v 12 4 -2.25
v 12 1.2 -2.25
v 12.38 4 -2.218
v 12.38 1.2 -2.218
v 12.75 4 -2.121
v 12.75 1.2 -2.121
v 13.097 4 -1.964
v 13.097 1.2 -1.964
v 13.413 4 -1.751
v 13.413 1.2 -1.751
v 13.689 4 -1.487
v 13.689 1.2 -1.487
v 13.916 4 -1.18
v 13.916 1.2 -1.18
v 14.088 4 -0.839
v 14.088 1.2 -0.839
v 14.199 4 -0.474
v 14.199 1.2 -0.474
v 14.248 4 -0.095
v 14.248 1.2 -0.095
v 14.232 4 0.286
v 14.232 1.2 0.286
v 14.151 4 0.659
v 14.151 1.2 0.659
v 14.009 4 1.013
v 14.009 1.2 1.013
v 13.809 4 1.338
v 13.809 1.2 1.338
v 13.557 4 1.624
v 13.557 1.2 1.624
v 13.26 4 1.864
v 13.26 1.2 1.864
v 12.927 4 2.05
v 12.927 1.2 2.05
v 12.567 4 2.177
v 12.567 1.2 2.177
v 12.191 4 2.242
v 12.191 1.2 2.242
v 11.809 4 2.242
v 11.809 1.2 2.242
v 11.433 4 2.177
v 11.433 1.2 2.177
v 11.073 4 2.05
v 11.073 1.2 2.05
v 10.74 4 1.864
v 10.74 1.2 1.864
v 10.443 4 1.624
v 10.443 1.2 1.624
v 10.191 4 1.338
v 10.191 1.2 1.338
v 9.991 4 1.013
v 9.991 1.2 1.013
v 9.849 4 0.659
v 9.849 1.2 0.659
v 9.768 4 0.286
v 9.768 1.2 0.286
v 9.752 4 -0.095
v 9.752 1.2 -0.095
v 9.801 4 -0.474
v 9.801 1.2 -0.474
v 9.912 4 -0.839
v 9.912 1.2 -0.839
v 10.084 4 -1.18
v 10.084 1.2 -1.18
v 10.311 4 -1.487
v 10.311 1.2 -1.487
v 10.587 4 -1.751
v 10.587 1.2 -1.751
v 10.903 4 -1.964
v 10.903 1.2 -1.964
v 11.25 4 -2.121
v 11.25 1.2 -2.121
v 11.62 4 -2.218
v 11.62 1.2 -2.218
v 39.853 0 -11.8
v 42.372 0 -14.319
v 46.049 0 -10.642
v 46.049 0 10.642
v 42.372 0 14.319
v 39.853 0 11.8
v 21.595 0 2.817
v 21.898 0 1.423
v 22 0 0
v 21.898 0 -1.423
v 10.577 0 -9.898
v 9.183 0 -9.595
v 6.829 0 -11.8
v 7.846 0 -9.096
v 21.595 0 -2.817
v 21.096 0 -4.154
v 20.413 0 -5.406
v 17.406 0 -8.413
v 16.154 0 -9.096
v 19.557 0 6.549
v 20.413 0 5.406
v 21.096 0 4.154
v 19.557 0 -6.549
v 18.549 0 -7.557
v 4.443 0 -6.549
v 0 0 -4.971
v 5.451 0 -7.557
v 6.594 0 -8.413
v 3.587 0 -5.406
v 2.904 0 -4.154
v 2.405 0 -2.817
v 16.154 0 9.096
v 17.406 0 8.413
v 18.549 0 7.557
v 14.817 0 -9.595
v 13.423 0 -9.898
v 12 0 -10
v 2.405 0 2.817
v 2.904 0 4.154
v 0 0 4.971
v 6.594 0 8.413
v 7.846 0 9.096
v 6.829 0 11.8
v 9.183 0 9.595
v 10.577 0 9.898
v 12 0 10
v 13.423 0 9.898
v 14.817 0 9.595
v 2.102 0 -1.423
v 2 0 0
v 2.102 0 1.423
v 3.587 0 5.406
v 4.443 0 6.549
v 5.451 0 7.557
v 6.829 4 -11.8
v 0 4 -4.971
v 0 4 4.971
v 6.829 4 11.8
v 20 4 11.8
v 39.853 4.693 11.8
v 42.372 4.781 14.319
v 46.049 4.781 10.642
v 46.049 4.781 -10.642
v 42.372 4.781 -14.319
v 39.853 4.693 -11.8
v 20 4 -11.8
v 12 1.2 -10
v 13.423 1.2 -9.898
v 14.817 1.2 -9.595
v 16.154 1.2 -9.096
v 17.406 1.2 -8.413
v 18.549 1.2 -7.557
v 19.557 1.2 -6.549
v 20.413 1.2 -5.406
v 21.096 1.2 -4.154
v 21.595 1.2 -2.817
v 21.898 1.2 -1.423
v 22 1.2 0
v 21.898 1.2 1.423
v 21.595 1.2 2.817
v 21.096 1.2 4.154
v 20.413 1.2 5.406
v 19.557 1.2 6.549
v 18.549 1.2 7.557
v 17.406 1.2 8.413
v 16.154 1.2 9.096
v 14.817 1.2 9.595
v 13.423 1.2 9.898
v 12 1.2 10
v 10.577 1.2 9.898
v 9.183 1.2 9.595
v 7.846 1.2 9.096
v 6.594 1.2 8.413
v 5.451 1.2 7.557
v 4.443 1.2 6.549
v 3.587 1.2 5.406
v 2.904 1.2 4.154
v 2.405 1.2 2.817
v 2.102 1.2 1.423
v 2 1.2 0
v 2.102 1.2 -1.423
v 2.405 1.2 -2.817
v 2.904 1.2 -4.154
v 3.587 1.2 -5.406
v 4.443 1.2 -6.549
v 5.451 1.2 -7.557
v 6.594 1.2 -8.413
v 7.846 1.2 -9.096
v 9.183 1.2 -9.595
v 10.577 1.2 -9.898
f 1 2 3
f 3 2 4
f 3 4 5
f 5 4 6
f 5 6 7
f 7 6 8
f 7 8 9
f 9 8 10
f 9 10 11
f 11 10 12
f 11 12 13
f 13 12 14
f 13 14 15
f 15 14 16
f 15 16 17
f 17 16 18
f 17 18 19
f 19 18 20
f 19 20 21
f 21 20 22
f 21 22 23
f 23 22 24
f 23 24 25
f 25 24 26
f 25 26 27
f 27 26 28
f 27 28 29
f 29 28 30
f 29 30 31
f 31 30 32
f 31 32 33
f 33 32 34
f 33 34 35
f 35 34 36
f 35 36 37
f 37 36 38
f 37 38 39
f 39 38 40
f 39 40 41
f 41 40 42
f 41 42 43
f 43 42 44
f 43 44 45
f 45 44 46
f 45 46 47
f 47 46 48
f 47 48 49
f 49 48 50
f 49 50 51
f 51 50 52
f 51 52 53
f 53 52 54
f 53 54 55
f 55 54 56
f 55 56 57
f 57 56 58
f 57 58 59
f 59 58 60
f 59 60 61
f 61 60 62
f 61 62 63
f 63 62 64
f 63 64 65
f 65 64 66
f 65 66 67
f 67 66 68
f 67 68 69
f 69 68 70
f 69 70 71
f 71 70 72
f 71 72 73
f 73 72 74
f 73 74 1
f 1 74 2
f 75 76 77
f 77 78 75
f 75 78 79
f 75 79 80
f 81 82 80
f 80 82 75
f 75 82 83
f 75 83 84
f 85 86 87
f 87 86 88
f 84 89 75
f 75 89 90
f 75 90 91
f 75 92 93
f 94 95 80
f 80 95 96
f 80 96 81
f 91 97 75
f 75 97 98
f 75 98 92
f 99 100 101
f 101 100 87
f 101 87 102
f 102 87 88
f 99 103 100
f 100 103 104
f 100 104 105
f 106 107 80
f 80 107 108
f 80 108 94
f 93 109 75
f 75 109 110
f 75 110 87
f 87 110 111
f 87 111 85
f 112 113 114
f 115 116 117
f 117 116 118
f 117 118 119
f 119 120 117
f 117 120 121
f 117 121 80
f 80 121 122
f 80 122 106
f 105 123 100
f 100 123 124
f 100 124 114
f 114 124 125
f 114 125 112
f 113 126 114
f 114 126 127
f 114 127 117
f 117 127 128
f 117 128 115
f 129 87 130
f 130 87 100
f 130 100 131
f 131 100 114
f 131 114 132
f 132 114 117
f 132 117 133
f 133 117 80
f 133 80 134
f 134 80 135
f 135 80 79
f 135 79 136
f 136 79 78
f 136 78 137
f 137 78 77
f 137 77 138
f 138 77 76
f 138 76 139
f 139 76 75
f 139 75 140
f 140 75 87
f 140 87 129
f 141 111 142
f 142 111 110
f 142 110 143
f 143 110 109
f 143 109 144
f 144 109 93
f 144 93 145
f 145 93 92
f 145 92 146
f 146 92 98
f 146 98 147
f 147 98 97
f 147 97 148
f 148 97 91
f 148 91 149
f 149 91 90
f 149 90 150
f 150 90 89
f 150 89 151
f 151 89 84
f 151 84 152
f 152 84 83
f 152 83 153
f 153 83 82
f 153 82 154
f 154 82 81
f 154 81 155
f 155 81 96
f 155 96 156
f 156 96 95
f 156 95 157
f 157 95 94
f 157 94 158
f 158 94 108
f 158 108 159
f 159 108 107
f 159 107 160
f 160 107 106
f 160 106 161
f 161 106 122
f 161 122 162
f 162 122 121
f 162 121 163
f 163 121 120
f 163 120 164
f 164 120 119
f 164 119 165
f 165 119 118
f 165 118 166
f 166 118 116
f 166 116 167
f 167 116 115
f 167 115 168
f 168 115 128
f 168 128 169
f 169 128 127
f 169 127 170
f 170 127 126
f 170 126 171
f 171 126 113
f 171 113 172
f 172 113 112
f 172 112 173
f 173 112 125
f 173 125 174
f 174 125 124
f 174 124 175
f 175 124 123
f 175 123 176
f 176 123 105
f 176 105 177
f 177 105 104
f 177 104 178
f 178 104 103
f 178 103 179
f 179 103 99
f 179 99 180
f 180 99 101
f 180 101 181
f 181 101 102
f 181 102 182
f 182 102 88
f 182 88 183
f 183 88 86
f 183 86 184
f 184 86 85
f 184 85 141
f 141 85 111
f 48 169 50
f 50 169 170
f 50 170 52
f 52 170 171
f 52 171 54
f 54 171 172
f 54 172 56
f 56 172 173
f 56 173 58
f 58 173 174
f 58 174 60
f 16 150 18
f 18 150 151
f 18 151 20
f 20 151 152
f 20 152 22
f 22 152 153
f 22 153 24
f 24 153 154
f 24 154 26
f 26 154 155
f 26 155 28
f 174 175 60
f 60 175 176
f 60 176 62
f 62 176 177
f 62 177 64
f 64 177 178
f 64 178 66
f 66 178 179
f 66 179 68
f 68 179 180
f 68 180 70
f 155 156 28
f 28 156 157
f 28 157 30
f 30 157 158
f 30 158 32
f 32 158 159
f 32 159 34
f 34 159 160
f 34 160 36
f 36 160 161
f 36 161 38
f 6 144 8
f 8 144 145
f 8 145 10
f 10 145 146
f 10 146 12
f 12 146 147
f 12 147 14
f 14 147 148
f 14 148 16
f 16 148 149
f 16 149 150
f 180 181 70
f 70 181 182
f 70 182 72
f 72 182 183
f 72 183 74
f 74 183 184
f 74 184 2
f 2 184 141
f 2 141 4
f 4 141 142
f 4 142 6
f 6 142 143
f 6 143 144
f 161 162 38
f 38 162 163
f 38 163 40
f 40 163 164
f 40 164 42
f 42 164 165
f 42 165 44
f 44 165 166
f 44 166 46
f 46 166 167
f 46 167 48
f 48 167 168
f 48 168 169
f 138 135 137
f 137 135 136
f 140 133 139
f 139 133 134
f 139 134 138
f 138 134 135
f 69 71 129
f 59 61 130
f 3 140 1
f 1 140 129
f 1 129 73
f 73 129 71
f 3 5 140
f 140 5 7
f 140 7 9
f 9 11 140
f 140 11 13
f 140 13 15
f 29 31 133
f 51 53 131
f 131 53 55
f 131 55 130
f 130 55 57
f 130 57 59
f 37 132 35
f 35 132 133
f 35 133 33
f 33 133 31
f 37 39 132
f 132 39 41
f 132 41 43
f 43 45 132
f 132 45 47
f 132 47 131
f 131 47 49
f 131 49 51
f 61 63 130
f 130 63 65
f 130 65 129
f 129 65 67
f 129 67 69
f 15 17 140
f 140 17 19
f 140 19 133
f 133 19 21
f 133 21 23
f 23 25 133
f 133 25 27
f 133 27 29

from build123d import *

# Parameters (mm, degrees)
SKETCH1_R               = 2.25
BOSS_EXTRUDE1_DEPTH     = 6
SKETCH2_R               = 10
CUT_EXTRUDE1_DEPTH      = 1.2
CUT_EXTRUDE2_DEPTH      = 54.27936377
CUT_EXTRUDE2_DEPTH_BACK = 54.27936377


with BuildPart() as part:
    # Sketch1 → Boss-Extrude1 (new body)
    with BuildSketch(Plane(origin=(0, 0, 0), x_dir=(1, 0, 0), z_dir=(0, 1, 0))):
        Polygon((0, 4.970562748), (0, -4.970562748), (6.829437252, -11.8), (39.85294373, -11.8), (39.86294373, -11.81), (40.05294373, -12), (42.371856048, -14.318912318), (46.04881131, -10.641957056), (46.04881131, 10.641957056), (42.371856048, 14.318912318), (40.05294373, 12), (39.86294373, 11.81), (39.85294373, 11.8), (6.829437252, 11.8), align=None)
        with Locations(Location((12, 0, 0), (0, 0, 270))):
            Circle(SKETCH1_R, mode=Mode.SUBTRACT)
    extrude(amount=BOSS_EXTRUDE1_DEPTH)

    # Sketch2 → Cut-Extrude1 (cut)
    with BuildSketch(Plane.XZ):
        with Locations(Location((12, 0, 0), (0, 0, 270))):
            Circle(SKETCH2_R)
    extrude(amount=-CUT_EXTRUDE1_DEPTH, mode=Mode.SUBTRACT)

    # Sketch3 → Cut-Extrude2 (cut, two sides: drawn at the far end of the back side and taken through both)
    with BuildSketch(Plane(origin=(0, 0, -11.8), x_dir=(-1, 0, 0), z_dir=(0, 0, -1)).offset(-CUT_EXTRUDE2_DEPTH_BACK)):
        Polygon((-46.04881131, 6), (0, 6), (0, 4), (-20, 4), (-42.371856048, 4.781242428), (-46.04881131, 4.781242428), align=None)
    extrude(amount=CUT_EXTRUDE2_DEPTH + CUT_EXTRUDE2_DEPTH_BACK, mode=Mode.SUBTRACT)


solid = part.part
